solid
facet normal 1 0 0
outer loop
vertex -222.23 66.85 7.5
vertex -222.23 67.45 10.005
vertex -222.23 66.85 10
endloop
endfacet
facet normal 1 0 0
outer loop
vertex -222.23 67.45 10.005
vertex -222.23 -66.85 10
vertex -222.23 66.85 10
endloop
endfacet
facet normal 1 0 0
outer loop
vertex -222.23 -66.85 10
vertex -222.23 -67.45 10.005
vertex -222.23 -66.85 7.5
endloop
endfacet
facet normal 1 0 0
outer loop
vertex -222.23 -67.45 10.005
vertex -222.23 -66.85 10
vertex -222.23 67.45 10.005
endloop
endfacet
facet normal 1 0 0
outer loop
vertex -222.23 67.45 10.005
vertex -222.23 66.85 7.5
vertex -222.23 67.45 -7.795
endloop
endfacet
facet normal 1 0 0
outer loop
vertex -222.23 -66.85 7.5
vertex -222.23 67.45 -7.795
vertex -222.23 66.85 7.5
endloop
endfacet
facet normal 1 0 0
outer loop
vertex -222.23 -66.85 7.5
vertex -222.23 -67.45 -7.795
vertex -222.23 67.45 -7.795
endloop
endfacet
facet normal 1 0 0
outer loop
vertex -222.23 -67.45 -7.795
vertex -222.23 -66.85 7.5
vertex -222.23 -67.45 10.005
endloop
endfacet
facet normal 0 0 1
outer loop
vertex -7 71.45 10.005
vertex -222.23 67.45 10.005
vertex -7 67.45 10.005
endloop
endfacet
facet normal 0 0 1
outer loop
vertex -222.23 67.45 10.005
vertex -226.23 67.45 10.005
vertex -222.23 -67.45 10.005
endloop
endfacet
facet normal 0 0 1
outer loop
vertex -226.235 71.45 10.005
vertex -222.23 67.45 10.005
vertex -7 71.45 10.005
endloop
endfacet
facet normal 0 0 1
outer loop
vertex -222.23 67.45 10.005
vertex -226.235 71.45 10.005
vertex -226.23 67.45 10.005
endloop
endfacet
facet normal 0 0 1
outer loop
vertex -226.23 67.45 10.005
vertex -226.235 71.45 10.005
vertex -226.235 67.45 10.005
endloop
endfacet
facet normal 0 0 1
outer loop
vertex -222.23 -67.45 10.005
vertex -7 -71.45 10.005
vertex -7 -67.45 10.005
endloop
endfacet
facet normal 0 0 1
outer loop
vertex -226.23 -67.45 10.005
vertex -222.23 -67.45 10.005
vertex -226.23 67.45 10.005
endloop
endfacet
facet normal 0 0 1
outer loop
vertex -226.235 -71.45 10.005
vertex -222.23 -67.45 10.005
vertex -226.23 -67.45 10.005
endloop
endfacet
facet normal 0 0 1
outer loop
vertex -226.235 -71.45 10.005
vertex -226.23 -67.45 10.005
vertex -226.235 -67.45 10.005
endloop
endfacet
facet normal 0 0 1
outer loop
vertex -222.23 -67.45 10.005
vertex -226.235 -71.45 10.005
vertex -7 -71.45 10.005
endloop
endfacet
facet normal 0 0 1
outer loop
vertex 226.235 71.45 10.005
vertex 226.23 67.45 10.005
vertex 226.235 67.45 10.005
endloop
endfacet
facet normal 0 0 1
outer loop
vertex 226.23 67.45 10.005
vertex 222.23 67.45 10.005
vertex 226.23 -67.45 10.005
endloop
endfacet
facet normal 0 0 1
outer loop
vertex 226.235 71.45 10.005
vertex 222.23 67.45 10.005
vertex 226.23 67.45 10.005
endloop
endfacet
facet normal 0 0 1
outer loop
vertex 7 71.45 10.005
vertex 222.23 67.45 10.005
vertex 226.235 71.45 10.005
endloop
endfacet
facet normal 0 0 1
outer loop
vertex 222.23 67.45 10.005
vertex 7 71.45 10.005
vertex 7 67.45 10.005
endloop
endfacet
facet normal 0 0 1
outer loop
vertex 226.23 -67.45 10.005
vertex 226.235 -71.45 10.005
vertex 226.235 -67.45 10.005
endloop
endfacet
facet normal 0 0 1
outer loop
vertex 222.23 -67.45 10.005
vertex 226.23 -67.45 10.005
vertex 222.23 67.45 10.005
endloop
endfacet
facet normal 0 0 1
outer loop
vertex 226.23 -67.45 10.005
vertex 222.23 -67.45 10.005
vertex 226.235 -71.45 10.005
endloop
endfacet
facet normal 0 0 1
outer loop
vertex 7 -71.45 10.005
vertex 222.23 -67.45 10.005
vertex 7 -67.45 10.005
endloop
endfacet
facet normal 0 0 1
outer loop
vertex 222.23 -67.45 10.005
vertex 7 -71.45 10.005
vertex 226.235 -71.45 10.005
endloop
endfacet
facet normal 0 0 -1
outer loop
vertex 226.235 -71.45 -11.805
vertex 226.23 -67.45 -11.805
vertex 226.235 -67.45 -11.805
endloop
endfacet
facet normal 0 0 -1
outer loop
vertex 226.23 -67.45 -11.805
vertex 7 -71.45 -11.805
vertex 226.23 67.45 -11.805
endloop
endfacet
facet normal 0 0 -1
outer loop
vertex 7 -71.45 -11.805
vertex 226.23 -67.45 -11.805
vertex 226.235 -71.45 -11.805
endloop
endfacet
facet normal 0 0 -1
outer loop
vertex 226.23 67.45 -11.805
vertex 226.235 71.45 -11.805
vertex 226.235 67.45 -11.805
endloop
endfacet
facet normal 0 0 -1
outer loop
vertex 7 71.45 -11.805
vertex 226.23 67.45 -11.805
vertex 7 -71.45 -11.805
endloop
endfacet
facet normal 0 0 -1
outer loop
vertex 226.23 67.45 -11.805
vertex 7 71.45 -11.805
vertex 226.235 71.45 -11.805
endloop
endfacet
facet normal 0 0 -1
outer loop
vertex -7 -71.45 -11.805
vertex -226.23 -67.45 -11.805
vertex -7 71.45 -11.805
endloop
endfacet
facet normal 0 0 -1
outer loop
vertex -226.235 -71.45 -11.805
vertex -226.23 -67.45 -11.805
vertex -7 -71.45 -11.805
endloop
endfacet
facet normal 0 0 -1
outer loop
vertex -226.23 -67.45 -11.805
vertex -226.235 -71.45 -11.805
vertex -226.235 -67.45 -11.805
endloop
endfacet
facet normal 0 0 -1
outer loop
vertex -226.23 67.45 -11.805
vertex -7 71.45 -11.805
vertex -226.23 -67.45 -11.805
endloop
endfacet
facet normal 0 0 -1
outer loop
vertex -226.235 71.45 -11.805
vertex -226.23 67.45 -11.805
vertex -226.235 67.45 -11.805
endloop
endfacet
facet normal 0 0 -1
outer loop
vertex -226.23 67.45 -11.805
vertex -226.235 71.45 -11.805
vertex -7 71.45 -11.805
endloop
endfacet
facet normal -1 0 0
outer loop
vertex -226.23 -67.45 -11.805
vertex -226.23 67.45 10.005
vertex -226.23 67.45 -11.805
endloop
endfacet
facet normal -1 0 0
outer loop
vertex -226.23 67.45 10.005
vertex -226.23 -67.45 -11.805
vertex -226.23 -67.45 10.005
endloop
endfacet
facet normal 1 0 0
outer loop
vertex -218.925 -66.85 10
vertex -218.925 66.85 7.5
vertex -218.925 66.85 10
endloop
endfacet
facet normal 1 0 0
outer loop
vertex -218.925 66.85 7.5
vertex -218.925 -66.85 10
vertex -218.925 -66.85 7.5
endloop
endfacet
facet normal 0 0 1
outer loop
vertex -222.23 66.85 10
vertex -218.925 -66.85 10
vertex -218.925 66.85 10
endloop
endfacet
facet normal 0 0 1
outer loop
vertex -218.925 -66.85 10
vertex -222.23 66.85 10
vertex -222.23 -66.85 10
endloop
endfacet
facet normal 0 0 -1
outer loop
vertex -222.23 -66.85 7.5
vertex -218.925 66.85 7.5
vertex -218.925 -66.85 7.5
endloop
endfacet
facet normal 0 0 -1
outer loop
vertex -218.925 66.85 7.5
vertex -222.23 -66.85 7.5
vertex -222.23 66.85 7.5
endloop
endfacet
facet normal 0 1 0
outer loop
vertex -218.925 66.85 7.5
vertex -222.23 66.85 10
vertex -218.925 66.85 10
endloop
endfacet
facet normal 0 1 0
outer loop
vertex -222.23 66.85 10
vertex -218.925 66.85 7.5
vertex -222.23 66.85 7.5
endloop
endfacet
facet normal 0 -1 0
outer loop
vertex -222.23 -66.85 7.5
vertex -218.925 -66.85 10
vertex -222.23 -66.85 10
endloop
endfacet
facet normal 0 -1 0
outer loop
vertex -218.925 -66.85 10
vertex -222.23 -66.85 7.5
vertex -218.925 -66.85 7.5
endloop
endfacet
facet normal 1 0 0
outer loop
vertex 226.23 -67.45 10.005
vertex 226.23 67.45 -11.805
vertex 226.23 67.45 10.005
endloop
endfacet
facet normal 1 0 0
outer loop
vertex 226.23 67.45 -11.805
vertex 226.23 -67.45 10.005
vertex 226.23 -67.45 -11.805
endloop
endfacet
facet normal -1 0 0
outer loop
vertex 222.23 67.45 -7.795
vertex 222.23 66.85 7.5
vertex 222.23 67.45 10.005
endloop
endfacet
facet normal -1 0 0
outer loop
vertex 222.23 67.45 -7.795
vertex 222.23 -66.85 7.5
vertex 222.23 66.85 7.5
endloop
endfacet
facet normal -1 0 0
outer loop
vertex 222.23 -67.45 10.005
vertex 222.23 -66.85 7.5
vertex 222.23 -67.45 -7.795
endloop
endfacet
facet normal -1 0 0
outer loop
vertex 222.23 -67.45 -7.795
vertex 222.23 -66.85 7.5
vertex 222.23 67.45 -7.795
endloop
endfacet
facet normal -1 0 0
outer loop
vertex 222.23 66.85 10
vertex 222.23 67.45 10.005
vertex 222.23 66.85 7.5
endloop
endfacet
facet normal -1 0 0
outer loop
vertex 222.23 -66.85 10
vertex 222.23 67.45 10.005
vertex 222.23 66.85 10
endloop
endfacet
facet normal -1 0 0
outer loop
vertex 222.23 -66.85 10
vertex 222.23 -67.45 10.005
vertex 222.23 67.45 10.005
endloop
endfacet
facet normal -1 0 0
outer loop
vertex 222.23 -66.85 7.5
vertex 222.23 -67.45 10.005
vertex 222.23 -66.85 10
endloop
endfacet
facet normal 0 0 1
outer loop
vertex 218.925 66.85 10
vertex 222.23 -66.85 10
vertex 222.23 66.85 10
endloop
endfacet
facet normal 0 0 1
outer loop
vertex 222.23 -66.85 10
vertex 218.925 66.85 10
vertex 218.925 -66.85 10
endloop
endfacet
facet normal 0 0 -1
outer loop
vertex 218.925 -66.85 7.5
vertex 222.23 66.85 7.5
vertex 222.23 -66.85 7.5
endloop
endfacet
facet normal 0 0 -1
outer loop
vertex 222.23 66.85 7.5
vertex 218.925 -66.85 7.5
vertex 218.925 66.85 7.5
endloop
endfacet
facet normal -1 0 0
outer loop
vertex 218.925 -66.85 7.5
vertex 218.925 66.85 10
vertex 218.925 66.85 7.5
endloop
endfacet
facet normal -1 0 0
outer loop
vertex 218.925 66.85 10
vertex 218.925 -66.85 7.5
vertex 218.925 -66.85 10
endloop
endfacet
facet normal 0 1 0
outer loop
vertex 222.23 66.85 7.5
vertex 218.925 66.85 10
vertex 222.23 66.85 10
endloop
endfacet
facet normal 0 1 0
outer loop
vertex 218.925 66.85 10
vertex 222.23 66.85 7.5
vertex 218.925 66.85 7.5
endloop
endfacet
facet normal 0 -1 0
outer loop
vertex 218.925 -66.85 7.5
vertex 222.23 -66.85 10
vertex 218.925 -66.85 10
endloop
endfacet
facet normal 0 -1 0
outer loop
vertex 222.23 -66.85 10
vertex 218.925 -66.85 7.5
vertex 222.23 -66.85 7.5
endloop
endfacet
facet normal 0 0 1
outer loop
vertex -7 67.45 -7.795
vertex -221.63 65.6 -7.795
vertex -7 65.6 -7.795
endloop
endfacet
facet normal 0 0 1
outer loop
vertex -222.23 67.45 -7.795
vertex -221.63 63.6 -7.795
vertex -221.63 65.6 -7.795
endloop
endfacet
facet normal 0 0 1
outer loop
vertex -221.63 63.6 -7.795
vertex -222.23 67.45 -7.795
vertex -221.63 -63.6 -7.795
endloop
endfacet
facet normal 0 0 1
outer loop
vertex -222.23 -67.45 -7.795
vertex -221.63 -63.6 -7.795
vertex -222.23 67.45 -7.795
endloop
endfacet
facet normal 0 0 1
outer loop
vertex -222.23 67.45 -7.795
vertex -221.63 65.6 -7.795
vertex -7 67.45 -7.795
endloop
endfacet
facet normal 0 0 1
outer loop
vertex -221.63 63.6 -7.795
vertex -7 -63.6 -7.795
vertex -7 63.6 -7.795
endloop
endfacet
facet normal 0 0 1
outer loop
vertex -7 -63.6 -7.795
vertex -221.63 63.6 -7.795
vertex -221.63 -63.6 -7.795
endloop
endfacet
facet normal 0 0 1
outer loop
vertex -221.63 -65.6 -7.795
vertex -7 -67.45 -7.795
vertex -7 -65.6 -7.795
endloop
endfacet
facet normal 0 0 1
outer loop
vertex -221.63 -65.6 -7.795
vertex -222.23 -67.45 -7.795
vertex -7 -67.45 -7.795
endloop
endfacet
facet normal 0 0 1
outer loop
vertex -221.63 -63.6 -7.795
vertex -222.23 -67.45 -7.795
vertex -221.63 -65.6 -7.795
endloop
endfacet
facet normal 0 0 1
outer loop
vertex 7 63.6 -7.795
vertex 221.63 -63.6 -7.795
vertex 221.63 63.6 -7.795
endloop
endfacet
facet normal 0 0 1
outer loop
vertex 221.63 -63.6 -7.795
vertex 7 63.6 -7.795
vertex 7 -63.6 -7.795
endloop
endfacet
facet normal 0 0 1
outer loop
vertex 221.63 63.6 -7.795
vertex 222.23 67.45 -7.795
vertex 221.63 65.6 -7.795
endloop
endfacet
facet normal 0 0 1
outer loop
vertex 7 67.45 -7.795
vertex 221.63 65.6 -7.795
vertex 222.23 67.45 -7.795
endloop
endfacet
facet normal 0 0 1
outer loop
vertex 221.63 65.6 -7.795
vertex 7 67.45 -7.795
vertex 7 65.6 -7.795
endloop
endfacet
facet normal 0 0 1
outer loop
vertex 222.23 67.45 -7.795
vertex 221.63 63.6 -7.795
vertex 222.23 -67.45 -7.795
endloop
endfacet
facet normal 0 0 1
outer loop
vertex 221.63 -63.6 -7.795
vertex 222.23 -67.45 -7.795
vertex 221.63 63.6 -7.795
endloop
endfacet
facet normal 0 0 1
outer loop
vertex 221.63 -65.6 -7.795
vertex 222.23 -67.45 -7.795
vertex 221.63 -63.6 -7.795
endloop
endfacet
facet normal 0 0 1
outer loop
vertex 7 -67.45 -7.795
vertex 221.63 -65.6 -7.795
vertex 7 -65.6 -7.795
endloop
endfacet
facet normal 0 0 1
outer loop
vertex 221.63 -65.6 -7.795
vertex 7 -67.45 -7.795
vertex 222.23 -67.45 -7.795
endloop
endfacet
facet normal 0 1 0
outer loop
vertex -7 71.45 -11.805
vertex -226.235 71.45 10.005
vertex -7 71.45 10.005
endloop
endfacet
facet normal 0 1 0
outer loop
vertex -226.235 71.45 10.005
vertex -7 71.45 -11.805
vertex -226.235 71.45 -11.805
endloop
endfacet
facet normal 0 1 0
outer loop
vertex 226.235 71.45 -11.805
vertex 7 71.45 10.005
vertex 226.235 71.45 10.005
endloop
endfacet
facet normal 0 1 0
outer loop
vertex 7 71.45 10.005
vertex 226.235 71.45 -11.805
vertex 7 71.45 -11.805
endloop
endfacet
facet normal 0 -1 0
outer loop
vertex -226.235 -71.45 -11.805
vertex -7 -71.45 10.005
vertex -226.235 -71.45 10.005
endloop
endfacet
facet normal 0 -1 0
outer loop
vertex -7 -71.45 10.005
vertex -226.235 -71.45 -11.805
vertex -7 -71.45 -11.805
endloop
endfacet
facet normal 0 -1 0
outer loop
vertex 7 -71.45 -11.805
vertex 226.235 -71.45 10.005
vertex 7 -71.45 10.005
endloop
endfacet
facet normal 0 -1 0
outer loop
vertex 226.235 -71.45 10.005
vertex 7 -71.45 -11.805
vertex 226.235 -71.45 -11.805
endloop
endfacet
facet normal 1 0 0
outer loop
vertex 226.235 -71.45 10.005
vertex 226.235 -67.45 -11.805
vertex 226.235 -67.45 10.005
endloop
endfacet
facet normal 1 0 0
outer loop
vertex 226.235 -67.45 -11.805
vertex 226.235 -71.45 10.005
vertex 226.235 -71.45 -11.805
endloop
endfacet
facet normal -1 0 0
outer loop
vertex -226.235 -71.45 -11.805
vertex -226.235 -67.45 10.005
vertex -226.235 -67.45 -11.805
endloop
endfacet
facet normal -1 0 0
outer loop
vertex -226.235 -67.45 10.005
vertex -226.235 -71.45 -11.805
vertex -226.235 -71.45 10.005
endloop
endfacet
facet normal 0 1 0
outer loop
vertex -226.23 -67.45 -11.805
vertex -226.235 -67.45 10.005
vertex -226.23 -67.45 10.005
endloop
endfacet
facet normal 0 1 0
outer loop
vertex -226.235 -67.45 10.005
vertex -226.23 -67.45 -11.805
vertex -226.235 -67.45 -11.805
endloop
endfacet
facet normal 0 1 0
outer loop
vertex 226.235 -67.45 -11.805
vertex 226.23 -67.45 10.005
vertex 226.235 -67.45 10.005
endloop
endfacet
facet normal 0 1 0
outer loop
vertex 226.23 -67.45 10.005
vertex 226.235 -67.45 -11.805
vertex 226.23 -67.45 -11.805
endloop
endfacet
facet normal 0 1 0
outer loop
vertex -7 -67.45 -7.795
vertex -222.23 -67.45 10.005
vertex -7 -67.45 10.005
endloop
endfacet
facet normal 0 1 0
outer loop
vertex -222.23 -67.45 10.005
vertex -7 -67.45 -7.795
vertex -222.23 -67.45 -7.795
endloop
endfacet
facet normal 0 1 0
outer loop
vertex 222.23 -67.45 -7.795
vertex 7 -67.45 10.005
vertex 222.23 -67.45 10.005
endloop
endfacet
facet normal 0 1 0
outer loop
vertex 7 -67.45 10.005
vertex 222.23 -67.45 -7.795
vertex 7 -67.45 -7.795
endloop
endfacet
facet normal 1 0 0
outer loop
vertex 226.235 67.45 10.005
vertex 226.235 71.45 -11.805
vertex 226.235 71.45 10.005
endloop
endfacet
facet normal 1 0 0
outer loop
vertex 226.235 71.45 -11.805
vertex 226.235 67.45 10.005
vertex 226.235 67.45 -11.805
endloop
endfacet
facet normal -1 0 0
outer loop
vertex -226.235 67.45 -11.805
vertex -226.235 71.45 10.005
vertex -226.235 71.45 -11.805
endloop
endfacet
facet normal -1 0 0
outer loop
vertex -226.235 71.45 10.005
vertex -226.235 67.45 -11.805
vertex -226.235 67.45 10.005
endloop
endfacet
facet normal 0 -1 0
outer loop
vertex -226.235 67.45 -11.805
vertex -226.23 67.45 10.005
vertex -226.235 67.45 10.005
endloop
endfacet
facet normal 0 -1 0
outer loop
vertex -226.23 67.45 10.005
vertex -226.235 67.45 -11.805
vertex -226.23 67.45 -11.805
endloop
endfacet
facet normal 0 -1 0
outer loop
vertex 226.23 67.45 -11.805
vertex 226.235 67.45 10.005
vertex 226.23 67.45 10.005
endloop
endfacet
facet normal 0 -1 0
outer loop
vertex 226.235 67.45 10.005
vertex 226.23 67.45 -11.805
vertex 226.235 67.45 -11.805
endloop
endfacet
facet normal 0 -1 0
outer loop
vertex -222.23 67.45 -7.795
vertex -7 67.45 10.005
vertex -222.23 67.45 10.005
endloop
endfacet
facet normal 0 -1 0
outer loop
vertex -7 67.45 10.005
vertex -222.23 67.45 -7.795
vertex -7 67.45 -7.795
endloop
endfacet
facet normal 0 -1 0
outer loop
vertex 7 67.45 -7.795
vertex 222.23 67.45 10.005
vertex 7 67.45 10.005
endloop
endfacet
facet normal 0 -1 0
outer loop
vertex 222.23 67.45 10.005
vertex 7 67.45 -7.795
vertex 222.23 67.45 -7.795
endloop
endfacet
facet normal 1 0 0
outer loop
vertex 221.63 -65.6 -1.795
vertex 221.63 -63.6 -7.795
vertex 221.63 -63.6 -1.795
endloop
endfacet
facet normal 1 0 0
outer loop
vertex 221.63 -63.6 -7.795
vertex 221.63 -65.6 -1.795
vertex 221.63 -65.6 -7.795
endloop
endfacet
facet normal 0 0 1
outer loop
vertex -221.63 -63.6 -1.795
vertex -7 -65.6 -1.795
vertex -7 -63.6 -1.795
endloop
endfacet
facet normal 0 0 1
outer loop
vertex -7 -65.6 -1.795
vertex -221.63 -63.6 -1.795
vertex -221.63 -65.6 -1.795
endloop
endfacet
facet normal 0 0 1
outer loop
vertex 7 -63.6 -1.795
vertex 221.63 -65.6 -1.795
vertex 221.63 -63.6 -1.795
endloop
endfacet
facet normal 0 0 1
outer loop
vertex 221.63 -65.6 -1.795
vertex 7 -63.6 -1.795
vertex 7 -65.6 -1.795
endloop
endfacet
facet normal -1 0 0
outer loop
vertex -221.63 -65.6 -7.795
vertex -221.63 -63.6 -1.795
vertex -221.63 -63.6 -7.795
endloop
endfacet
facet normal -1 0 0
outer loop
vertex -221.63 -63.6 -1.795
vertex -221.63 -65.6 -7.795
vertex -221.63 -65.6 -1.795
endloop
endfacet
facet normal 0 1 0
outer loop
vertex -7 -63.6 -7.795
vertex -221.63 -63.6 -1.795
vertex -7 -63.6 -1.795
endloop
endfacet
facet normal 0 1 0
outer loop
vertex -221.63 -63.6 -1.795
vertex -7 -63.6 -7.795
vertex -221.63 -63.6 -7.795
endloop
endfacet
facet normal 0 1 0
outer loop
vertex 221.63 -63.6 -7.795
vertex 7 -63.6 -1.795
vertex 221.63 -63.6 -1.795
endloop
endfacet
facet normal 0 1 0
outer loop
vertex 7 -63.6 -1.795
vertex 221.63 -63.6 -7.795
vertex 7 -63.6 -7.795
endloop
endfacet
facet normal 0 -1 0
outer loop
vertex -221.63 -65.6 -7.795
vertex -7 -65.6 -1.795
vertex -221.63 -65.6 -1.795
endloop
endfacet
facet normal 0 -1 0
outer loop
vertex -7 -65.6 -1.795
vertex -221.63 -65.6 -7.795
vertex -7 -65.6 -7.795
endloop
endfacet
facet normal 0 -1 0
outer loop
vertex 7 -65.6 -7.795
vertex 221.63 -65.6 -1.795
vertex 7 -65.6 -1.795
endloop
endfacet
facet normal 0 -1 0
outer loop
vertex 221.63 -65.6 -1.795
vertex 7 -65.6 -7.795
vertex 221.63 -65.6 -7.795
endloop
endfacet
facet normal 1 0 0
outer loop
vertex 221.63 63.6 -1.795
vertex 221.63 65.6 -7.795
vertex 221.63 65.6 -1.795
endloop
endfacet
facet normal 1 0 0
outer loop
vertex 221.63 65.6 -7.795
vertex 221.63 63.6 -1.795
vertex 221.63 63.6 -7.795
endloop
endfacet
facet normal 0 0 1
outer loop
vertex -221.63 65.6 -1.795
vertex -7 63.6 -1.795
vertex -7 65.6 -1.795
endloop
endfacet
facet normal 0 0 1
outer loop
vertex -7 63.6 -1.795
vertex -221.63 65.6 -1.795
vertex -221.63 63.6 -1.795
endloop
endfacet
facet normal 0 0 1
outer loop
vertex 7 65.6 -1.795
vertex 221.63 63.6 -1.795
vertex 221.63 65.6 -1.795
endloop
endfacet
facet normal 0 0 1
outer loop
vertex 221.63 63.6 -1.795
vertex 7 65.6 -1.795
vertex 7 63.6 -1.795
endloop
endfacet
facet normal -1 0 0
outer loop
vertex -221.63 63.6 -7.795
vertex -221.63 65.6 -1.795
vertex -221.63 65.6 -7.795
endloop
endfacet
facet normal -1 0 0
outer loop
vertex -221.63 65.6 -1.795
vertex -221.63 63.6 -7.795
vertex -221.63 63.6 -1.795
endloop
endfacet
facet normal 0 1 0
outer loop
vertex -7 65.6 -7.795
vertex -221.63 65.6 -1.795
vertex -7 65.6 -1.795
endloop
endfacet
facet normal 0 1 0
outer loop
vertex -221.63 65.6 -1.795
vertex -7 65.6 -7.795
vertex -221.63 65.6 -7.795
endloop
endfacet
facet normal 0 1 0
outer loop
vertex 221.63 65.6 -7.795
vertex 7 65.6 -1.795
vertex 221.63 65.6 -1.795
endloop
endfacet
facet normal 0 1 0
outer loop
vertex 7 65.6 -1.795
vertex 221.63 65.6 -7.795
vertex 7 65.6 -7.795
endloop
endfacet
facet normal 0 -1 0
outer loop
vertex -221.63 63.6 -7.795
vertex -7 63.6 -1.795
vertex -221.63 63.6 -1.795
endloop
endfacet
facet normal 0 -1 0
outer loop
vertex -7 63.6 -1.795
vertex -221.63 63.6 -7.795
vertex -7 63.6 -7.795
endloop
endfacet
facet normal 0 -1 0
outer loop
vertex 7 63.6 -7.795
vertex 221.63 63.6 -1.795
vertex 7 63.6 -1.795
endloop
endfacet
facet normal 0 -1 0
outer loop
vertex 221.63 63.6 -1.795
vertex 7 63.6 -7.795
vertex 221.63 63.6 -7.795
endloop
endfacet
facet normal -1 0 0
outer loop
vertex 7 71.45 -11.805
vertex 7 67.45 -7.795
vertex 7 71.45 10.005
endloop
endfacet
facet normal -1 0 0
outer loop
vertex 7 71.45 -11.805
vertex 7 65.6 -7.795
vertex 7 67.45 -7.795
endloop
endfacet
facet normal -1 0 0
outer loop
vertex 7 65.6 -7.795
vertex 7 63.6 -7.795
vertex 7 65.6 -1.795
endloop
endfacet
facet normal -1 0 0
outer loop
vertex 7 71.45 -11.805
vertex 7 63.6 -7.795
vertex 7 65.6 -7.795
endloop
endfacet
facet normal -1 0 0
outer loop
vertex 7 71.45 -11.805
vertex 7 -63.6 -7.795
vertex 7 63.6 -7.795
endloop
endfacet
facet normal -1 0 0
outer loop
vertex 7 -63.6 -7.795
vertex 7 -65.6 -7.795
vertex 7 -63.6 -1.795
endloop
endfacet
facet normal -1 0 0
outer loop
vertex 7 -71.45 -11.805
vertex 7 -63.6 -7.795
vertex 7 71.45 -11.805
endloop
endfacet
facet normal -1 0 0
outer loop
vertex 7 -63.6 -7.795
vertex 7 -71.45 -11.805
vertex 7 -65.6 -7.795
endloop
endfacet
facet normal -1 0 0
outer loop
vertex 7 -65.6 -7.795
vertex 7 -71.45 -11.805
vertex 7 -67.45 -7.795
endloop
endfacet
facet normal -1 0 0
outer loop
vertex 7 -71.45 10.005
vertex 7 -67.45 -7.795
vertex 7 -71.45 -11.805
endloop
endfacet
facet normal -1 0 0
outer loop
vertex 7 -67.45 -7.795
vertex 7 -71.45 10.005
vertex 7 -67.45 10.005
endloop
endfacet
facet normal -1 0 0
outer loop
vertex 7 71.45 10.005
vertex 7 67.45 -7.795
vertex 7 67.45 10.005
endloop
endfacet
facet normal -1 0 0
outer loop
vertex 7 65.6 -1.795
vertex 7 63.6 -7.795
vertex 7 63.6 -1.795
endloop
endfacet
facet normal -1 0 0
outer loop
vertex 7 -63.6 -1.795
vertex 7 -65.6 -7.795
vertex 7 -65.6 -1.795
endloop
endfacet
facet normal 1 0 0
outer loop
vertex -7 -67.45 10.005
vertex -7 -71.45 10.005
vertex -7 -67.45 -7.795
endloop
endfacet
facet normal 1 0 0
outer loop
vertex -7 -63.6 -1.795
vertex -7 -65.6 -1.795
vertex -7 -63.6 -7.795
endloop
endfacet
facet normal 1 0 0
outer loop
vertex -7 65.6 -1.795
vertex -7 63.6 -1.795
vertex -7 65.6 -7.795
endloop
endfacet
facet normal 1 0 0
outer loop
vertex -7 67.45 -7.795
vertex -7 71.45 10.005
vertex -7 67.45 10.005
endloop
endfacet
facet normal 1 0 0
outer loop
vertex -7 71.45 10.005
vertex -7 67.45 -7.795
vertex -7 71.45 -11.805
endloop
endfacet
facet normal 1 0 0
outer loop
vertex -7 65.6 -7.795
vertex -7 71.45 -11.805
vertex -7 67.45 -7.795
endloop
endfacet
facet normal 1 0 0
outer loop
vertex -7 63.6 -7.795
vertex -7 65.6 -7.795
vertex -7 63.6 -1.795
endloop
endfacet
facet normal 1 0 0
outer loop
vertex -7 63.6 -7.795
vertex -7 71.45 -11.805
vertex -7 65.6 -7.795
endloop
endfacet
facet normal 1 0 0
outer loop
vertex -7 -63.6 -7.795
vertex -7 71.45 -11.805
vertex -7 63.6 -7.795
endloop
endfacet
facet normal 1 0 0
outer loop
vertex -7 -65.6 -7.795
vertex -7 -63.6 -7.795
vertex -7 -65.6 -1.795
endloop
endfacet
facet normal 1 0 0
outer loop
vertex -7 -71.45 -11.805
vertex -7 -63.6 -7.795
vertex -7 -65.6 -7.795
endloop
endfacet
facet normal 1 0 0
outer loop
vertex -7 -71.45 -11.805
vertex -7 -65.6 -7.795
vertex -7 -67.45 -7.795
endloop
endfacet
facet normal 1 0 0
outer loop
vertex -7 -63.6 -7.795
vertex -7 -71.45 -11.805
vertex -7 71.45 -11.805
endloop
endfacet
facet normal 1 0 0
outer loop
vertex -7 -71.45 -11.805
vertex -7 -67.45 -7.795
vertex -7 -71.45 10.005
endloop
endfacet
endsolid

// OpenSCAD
// Keyboard plate dimensions (from measurement)
plate_length = 443.86;
plate_width = 134.30;
bend_height = 15.00;

// Centering offset from measurement
plate_offset_x = -202.41;
plate_offset_y = 57.15;
plate_offset_z = 6.00;
bottom_of_plate = -7.50;
top_of_plate = 7.50;

// Case parameters
wall_thickness = 4;
bottom_thickness = 4;
tolerance = 0.3;

// Guide ridge parameters
ridge_thickness = 2;
ridge_height = 10;
ridge_inset = 2.55;

// Front and back wall parameters
fb_wall_top_clearance = -2.5;

// Side wall parameters
side_wall_offset = 0;
side_wall_bottom_z = -7.5;
side_wall_top_z = 10;
side_wall_lip_width = 4;
side_wall_lip_height = 2.5;
side_wall_lip_start_z = 7.5;
side_wall_lip_inset = 1;

// USB cutout parameters
usb_cutout_x = 0;
usb_cutout_width = 14;
usb_cutout_z_bottom = -12;
usb_cutout_height = 300;
usb_cutout_depth = 600; // Long cutout extending through case

// Small overlap to prevent gaps in union
overlap = 0.01;

// ===== MODULES =====

module complete_case() {
    // Calculate shared dimensions
    case_outer_length = plate_length + 2*wall_thickness + 2*tolerance;
    case_outer_width = plate_width + 2*wall_thickness + 2*tolerance;
    bottom_z = bottom_of_plate - bottom_thickness - tolerance;
    
    fb_wall_height = (top_of_plate - fb_wall_top_clearance) - bottom_z;
    fb_wall_center_z = (bottom_z + top_of_plate - fb_wall_top_clearance) / 2;
    
    difference() {
        union() {
            // Bottom plate
            translate([0, 0, bottom_z + bottom_thickness/2])
            cube([case_outer_length, case_outer_width, bottom_thickness + overlap], center=true);
            
            // Front wall
            translate([0, -(plate_width/2 + wall_thickness/2 + tolerance), (bottom_z + top_of_plate - fb_wall_top_clearance)/2])
            cube([
                case_outer_length + overlap, 
                wall_thickness, 
                fb_wall_height + overlap
            ], center=true);
            
            // Back wall
            translate([0, (plate_width/2 + wall_thickness/2 + tolerance), (bottom_z + top_of_plate - fb_wall_top_clearance)/2])
            cube([
                case_outer_length + overlap, 
                wall_thickness, 
                fb_wall_height + overlap
            ], center=true);
            
            // Side walls
            for (side = [-1, 1]) {
                translate([
                    side * (plate_length/2 + wall_thickness/2 + tolerance + side_wall_offset), 
                    0, 
                    (bottom_z + side_wall_top_z)/2
                ])
                cube([
                    wall_thickness, 
                    plate_width + 2*tolerance + overlap, 
                    side_wall_top_z - bottom_z + overlap
                ], center=true);
                
                // Inward retention lip
                translate([
                    side * (plate_length/2 + side_wall_offset + side_wall_lip_inset - side_wall_lip_width/2), 
                    0, 
                    side_wall_lip_start_z + side_wall_lip_height/2
                ])
                cube([
                    side_wall_lip_width + overlap, 
                    plate_width - 2*tolerance, 
                    side_wall_lip_height
                ], center=true);
            }
            
            // Front ridge
            translate([0, -(plate_width/2 - ridge_inset), bottom_z + ridge_height/2])
            cube([
                plate_length - 2*tolerance, 
                ridge_thickness, 
                ridge_height + overlap
            ], center=true);
            
            // Back ridge
            translate([0, (plate_width/2 - ridge_inset), bottom_z + ridge_height/2])
            cube([
                plate_length - 2*tolerance, 
                ridge_thickness, 
                ridge_height + overlap
            ], center=true);
        }
        
        // USB cutout - extends deep into case
        translate([usb_cutout_x, (plate_width/2 + wall_thickness + tolerance - usb_cutout_depth/2), usb_cutout_z_bottom + usb_cutout_height/2])
        cube([usb_cutout_width, usb_cutout_depth, usb_cutout_height], center=true);
    }
}

// ===== RENDER =====

complete_case();
